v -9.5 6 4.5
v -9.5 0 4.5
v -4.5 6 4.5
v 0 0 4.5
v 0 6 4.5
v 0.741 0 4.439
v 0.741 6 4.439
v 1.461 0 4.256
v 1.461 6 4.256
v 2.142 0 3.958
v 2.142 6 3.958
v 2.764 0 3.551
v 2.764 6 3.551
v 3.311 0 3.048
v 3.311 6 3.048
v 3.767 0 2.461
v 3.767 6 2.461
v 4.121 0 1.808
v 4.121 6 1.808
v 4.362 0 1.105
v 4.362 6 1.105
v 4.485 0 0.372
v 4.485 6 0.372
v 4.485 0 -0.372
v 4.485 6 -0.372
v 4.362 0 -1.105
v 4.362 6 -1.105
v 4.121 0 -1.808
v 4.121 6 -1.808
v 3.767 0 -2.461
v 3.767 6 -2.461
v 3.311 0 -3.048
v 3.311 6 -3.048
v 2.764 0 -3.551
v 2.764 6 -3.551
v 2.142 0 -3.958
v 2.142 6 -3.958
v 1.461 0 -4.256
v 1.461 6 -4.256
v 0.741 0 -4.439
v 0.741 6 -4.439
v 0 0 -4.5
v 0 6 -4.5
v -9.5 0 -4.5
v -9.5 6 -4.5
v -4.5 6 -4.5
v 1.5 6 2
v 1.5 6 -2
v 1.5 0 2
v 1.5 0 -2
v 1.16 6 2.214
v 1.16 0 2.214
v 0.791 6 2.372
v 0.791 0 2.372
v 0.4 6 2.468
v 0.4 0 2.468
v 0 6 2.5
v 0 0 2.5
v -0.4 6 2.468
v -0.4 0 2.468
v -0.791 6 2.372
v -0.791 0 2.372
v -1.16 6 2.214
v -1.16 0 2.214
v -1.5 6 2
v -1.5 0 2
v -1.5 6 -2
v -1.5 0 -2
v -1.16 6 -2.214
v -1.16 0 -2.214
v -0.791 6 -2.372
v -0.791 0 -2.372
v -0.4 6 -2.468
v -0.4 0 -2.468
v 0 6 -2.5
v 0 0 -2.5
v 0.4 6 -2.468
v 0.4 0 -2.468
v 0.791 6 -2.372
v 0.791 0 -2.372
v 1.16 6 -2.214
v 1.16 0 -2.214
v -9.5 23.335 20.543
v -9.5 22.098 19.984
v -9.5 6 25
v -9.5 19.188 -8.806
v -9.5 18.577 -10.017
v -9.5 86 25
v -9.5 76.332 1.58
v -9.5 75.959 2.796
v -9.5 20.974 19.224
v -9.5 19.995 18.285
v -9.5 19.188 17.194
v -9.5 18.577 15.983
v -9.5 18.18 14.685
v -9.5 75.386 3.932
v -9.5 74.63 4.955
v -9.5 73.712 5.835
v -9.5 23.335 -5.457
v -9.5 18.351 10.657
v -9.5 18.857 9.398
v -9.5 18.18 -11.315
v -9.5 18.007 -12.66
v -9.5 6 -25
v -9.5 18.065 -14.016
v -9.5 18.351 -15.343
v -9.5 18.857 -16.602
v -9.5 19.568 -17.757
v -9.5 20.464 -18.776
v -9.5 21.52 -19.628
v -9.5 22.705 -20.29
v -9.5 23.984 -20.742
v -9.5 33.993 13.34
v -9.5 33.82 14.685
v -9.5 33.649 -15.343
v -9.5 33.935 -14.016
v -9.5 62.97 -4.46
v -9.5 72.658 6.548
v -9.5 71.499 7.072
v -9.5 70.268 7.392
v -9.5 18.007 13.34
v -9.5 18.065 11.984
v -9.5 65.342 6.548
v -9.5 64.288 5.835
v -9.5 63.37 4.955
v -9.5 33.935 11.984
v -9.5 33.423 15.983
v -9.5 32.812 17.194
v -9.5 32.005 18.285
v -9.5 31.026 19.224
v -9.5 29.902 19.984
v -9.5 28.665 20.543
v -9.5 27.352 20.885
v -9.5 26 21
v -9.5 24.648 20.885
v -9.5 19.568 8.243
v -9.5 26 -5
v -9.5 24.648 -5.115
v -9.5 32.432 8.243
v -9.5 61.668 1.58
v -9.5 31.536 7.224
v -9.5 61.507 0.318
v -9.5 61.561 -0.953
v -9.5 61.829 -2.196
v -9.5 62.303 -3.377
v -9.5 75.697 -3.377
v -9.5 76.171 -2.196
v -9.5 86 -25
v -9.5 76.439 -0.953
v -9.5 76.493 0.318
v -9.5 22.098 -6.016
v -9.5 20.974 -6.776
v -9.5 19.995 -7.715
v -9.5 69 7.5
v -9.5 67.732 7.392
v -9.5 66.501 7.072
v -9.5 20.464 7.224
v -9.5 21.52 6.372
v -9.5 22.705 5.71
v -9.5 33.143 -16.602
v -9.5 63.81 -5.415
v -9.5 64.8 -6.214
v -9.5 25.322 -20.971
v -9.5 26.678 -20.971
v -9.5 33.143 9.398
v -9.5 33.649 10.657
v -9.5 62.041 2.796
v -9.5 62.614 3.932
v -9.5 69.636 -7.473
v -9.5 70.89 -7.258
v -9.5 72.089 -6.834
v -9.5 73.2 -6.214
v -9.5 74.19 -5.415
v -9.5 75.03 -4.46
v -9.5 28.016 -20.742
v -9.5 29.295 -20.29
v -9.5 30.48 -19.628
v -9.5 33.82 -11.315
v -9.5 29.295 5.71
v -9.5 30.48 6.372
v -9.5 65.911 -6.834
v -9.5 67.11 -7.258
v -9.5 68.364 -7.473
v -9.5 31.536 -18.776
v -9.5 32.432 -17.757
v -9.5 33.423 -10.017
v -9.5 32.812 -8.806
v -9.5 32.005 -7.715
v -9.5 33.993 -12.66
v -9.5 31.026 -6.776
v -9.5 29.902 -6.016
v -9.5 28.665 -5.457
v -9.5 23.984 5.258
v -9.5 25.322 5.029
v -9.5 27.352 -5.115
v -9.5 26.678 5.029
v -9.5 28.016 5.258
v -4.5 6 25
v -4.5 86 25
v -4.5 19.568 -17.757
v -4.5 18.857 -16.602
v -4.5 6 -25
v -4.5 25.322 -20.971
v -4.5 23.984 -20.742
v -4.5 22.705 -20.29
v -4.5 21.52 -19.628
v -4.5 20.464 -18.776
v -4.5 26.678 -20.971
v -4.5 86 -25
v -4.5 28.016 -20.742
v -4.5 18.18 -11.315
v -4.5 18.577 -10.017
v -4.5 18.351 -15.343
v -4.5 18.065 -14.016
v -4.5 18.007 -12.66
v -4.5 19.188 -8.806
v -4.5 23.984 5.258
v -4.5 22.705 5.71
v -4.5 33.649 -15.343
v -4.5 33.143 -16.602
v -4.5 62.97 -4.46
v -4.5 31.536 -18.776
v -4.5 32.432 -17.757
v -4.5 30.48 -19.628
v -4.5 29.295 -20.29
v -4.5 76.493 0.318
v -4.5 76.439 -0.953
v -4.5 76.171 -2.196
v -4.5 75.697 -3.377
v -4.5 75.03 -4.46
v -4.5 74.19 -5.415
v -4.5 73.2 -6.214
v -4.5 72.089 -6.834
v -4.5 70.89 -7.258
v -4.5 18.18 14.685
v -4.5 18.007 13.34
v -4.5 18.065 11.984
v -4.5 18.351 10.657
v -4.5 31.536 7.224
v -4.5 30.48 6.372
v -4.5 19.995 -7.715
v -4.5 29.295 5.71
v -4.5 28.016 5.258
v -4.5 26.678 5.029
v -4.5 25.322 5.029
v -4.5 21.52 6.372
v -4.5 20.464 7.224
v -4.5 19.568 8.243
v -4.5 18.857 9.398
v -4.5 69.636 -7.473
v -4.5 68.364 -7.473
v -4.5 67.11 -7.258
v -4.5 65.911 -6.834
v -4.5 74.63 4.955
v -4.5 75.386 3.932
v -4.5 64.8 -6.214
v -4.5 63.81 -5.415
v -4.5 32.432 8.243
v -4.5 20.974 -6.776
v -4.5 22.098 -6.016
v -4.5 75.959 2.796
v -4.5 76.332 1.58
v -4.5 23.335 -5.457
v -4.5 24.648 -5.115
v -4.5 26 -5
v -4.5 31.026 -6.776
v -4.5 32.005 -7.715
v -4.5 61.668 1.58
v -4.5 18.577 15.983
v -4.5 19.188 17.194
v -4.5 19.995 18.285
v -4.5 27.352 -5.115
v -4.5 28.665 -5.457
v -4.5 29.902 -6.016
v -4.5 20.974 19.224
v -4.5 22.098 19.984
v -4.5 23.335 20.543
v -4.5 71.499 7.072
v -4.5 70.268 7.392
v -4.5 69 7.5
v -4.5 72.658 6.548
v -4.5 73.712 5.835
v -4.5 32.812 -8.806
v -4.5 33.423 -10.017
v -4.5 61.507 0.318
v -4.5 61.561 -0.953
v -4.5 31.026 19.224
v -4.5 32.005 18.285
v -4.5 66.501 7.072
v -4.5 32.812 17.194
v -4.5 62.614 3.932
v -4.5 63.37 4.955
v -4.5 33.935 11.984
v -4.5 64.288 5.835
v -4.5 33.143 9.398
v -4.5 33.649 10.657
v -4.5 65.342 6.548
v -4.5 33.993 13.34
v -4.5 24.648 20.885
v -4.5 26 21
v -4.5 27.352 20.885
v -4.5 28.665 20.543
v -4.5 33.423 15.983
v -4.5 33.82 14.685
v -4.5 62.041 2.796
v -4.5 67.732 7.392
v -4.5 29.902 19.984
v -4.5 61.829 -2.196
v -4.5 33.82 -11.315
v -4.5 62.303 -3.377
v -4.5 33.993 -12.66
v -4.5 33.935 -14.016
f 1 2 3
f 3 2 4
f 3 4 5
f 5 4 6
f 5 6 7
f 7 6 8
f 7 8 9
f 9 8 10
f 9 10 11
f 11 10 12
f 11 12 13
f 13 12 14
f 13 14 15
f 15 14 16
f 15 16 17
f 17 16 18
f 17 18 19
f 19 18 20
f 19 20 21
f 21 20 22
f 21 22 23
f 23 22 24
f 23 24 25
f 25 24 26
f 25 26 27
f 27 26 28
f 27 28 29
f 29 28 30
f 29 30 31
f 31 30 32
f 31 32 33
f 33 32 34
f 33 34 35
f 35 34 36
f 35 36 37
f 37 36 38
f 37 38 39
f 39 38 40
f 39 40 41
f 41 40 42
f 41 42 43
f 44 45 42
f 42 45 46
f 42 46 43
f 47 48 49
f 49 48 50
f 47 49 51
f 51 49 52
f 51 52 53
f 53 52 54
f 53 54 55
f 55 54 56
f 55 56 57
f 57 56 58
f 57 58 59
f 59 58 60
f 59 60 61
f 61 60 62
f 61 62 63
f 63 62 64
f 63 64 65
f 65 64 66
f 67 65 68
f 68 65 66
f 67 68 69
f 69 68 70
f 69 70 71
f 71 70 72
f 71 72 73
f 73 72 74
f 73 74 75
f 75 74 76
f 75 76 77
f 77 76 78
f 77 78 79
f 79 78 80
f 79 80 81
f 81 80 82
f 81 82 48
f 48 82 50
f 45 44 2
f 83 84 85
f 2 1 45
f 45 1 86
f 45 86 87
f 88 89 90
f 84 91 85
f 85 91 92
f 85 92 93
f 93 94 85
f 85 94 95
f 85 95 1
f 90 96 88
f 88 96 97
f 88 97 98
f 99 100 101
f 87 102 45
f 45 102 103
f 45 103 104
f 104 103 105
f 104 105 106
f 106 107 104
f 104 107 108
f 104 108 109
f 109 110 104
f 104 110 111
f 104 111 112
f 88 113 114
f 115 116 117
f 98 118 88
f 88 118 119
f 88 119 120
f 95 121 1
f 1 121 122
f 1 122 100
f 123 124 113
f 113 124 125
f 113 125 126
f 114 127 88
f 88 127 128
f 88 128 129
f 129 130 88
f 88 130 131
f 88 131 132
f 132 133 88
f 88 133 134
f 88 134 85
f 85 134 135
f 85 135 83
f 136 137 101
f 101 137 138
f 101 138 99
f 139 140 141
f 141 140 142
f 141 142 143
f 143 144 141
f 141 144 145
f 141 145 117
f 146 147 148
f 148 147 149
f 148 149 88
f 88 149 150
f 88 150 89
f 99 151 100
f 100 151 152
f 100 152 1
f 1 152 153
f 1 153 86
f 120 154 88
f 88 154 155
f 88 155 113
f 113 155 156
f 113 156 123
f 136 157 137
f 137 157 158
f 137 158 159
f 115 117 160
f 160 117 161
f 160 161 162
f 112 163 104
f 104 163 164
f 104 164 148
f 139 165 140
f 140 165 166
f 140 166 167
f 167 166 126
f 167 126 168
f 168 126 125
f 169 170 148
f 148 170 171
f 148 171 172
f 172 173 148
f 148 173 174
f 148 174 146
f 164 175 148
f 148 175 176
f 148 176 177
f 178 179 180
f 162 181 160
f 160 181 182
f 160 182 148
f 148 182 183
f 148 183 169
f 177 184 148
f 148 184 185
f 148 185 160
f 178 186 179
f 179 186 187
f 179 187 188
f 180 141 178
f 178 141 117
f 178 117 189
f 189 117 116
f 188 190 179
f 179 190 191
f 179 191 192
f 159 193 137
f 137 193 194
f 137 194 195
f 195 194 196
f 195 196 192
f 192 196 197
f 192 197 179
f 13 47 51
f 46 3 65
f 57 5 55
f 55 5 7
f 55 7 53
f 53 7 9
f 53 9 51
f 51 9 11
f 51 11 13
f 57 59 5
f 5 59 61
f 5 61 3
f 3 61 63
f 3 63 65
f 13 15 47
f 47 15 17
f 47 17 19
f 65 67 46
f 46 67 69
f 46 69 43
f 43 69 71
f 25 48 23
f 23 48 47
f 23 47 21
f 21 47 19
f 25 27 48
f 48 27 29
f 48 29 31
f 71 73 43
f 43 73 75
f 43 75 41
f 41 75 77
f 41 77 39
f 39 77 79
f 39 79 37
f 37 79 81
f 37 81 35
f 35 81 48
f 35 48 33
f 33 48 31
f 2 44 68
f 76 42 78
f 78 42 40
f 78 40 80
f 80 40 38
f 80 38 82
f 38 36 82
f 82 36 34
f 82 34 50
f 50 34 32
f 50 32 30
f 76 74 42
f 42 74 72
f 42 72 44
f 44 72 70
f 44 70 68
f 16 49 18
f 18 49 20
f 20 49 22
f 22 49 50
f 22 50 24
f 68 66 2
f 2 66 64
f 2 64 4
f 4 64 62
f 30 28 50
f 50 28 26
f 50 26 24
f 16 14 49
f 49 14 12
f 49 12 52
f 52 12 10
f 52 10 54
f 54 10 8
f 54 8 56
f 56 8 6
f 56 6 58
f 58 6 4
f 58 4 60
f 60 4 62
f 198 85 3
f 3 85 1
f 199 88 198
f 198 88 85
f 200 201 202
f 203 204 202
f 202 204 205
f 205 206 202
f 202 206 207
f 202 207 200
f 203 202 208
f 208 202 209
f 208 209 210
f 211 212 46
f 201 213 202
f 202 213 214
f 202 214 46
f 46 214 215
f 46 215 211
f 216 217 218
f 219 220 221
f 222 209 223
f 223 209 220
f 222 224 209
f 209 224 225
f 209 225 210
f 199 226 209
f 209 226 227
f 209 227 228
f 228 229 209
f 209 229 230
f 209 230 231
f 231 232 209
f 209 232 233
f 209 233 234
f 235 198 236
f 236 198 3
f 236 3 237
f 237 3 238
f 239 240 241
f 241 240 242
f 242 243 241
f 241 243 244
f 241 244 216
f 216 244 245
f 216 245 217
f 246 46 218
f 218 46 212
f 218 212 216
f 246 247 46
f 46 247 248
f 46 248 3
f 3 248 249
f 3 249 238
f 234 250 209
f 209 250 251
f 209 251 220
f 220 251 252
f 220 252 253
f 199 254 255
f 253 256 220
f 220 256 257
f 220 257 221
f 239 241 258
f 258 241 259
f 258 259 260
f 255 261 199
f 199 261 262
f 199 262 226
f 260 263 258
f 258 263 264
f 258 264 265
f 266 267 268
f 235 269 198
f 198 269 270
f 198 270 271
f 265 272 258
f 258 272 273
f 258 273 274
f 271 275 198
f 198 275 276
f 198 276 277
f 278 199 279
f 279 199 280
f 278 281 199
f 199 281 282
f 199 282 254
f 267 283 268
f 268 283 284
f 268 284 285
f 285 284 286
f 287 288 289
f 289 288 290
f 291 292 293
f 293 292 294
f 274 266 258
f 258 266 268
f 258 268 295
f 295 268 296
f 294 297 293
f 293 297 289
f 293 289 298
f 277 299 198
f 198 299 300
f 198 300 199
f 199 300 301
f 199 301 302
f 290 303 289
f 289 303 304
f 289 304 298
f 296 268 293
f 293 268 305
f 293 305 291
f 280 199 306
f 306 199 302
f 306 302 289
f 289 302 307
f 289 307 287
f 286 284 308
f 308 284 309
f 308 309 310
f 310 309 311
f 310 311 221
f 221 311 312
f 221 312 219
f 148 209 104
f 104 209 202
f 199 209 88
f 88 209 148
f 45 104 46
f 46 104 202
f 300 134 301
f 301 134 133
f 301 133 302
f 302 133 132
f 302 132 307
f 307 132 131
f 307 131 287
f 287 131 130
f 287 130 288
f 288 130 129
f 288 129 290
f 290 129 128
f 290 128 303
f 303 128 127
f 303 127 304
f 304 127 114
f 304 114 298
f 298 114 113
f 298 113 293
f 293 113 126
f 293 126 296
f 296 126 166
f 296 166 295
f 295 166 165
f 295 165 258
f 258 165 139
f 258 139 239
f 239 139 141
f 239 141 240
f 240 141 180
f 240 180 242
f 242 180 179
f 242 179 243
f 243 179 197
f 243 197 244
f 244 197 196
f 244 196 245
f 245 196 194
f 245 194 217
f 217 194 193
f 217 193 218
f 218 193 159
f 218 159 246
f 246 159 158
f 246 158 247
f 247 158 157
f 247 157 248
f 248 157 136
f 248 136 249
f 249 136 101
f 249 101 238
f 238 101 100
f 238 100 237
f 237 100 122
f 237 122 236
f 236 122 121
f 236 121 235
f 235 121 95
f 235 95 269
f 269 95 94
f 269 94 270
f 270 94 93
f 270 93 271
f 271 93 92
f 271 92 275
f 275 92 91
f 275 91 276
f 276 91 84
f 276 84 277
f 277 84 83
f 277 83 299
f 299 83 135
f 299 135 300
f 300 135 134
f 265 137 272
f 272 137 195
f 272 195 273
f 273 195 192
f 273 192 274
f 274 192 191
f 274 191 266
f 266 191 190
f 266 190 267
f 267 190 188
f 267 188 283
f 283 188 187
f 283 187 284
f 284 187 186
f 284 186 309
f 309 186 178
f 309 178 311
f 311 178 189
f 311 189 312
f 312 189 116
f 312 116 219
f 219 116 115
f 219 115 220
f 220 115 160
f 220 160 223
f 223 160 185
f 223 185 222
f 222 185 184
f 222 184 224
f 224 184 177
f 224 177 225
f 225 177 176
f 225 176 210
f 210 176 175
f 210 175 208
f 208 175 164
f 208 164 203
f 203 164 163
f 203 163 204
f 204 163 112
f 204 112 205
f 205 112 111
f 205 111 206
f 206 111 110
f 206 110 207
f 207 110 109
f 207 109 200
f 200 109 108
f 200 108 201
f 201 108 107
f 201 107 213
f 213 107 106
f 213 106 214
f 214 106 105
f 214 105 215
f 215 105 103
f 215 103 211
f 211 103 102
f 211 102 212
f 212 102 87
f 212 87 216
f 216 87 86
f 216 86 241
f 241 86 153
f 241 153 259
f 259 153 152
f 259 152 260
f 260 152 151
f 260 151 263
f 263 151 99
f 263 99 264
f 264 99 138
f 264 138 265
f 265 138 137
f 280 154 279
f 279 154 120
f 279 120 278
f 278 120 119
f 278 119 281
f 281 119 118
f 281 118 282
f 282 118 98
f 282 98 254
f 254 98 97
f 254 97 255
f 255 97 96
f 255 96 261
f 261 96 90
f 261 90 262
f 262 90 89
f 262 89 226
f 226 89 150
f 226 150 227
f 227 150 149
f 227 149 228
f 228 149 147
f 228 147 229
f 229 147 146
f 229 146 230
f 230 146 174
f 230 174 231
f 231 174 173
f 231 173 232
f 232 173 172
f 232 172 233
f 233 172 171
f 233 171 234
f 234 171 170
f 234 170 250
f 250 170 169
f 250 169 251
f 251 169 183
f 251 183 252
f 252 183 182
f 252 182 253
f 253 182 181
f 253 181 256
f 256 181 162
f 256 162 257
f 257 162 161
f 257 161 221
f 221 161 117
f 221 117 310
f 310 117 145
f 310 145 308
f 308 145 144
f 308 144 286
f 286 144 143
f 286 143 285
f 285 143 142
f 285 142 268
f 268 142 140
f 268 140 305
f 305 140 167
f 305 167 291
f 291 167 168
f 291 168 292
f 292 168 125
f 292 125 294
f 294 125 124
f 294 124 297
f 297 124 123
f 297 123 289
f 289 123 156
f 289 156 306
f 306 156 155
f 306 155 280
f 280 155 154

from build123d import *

# Parameters (mm, degrees)
SALIENTE_EXTRUIR1_DEPTH = 6
CROQUIS4_W              = 5
CROQUIS4_H              = 50
SALIENTE_EXTRUIR4_DEPTH = 80
CROQUIS5_R              = 8
CROQUIS5_R_2            = 7.5
CORTAR_EXTRUIR1_DEPTH   = 80


with BuildPart() as part:
    # Croquis1 → Saliente-Extruir1 (new body)
    with BuildSketch(Plane(origin=(0, 0, 0), x_dir=(1, 0, 0), z_dir=(0, 1, 0))):
        with BuildLine():
            Line((-9.5, 4.5), (-9.5, 0))
            Line((-9.5, 0), (-4.5, 0))
            ThreePointArc((-4.5, 0), (-3.181980515, 3.181980515), (0, 4.5))
            Line((0, 4.5), (-9.5, 4.5))
        make_face()
        with BuildLine():
            Line((-4.5, 0), (-9.5, 0))
            Line((-9.5, 0), (-9.5, -4.5))
            Line((-9.5, -4.5), (0, -4.5))
            ThreePointArc((0, -4.5), (-3.181980515, -3.181980515), (-4.5, 0))
        make_face()
        with BuildLine():
            ThreePointArc((0, 4.5), (-3.181980515, 3.181980515), (-4.5, 0))
            Line((-4.5, 0), (-2.5, 0))
            ThreePointArc((-2.5, 0), (-2.236067977, 1.118033989), (-1.5, 2))
            Line((-1.5, 2), (-1.5, 3.446675318))
            Line((-1.5, 3.446675318), (0, 3.446675318))
            Line((0, 3.446675318), (0, 4.5))
        make_face()
        with BuildLine():
            Line((-2.5, 0), (-4.5, 0))
            ThreePointArc((-4.5, 0), (-3.181980515, -3.181980515), (0, -4.5))
            Line((0, -4.5), (0, -3.446675318))
            Line((0, -3.446675318), (-1.5, -3.446675318))
            Line((-1.5, -3.446675318), (-1.5, -2))
            ThreePointArc((-1.5, -2), (-2.236067977, -1.118033989), (-2.5, 0))
        make_face()
        with BuildLine():
            ThreePointArc((-1.5, 2), (-2.236067977, 1.118033989), (-2.5, 0))
            Line((-2.5, 0), (-1.5, 0))
            Line((-1.5, 0), (-1.5, 2))
        make_face()
        with BuildLine():
            Line((-1.5, 0), (-2.5, 0))
            ThreePointArc((-2.5, 0), (-2.236067977, -1.118033989), (-1.5, -2))
            Line((-1.5, -2), (-1.5, 0))
        make_face()
        with BuildLine():
            Line((-1.5, 3.446675318), (-1.5, 2))
            ThreePointArc((-1.5, 2), (-0.790569415, 2.371708245), (0, 2.5))
            Line((0, 2.5), (0, 3.446675318))
            Line((0, 3.446675318), (-1.5, 3.446675318))
        make_face()
        with BuildLine():
            Line((1.5, 3.446675318), (0, 3.446675318))
            Line((0, 3.446675318), (0, 2.5))
            ThreePointArc((0, 2.5), (0.790569415, 2.371708245), (1.5, 2))
            Line((1.5, 2), (1.5, 3.446675318))
        make_face()
        with BuildLine():
            ThreePointArc((0, -2.5), (-0.790569415, -2.371708245), (-1.5, -2))
            Line((-1.5, -2), (-1.5, -3.446675318))
            Line((-1.5, -3.446675318), (0, -3.446675318))
            Line((0, -3.446675318), (0, -2.5))
        make_face()
        with BuildLine():
            Line((0, -2.5), (0, -3.446675318))
            Line((0, -3.446675318), (1.5, -3.446675318))
            Line((1.5, -3.446675318), (1.5, -2))
            ThreePointArc((1.5, -2), (0.790569415, -2.371708245), (0, -2.5))
        make_face()
        with BuildLine():
            ThreePointArc((1.5, -2), (2.236067977, -1.118033989), (2.5, 0))
            Line((2.5, 0), (1.5, 0))
            Line((1.5, 0), (1.5, -2))
        make_face()
        with BuildLine():
            Line((1.5, 0), (2.5, 0))
            ThreePointArc((2.5, 0), (2.236067977, 1.118033989), (1.5, 2))
            Line((1.5, 2), (1.5, 0))
        make_face()
        with BuildLine():
            ThreePointArc((4.5, 0), (3.181980515, 3.181980515), (0, 4.5))
            Line((0, 4.5), (0, 3.446675318))
            Line((0, 3.446675318), (1.5, 3.446675318))
            Line((1.5, 3.446675318), (1.5, 2))
            ThreePointArc((1.5, 2), (2.236067977, 1.118033989), (2.5, 0))
            Line((2.5, 0), (4.5, 0))
        make_face()
        with BuildLine():
            Line((0, -3.446675318), (0, -4.5))
            ThreePointArc((0, -4.5), (3.181980515, -3.181980515), (4.5, 0))
            Line((4.5, 0), (2.5, 0))
            ThreePointArc((2.5, 0), (2.236067977, -1.118033989), (1.5, -2))
            Line((1.5, -2), (1.5, -3.446675318))
            Line((1.5, -3.446675318), (0, -3.446675318))
        make_face()
    extrude(amount=SALIENTE_EXTRUIR1_DEPTH)

    # Croquis4 → Saliente-Extruir4 (add)
    with BuildSketch(Plane(origin=(0, 6, 0), x_dir=(1, 0, 0), z_dir=(0, 1, 0))):
        with Locations((-7, 0)):
            Rectangle(CROQUIS4_W, CROQUIS4_H)
    extrude(amount=SALIENTE_EXTRUIR4_DEPTH)

    # Croquis5 → Cortar-Extruir1 (cut)
    with BuildSketch(Plane.ZY.offset(9.5)):
        with Locations((-13, 26)):
            Circle(CROQUIS5_R)
        with Locations((13, 26)):
            Circle(CROQUIS5_R)
        with Locations((0, 69)):
            Circle(CROQUIS5_R_2)
    extrude(amount=-CORTAR_EXTRUIR1_DEPTH, mode=Mode.SUBTRACT)


solid = part.part
